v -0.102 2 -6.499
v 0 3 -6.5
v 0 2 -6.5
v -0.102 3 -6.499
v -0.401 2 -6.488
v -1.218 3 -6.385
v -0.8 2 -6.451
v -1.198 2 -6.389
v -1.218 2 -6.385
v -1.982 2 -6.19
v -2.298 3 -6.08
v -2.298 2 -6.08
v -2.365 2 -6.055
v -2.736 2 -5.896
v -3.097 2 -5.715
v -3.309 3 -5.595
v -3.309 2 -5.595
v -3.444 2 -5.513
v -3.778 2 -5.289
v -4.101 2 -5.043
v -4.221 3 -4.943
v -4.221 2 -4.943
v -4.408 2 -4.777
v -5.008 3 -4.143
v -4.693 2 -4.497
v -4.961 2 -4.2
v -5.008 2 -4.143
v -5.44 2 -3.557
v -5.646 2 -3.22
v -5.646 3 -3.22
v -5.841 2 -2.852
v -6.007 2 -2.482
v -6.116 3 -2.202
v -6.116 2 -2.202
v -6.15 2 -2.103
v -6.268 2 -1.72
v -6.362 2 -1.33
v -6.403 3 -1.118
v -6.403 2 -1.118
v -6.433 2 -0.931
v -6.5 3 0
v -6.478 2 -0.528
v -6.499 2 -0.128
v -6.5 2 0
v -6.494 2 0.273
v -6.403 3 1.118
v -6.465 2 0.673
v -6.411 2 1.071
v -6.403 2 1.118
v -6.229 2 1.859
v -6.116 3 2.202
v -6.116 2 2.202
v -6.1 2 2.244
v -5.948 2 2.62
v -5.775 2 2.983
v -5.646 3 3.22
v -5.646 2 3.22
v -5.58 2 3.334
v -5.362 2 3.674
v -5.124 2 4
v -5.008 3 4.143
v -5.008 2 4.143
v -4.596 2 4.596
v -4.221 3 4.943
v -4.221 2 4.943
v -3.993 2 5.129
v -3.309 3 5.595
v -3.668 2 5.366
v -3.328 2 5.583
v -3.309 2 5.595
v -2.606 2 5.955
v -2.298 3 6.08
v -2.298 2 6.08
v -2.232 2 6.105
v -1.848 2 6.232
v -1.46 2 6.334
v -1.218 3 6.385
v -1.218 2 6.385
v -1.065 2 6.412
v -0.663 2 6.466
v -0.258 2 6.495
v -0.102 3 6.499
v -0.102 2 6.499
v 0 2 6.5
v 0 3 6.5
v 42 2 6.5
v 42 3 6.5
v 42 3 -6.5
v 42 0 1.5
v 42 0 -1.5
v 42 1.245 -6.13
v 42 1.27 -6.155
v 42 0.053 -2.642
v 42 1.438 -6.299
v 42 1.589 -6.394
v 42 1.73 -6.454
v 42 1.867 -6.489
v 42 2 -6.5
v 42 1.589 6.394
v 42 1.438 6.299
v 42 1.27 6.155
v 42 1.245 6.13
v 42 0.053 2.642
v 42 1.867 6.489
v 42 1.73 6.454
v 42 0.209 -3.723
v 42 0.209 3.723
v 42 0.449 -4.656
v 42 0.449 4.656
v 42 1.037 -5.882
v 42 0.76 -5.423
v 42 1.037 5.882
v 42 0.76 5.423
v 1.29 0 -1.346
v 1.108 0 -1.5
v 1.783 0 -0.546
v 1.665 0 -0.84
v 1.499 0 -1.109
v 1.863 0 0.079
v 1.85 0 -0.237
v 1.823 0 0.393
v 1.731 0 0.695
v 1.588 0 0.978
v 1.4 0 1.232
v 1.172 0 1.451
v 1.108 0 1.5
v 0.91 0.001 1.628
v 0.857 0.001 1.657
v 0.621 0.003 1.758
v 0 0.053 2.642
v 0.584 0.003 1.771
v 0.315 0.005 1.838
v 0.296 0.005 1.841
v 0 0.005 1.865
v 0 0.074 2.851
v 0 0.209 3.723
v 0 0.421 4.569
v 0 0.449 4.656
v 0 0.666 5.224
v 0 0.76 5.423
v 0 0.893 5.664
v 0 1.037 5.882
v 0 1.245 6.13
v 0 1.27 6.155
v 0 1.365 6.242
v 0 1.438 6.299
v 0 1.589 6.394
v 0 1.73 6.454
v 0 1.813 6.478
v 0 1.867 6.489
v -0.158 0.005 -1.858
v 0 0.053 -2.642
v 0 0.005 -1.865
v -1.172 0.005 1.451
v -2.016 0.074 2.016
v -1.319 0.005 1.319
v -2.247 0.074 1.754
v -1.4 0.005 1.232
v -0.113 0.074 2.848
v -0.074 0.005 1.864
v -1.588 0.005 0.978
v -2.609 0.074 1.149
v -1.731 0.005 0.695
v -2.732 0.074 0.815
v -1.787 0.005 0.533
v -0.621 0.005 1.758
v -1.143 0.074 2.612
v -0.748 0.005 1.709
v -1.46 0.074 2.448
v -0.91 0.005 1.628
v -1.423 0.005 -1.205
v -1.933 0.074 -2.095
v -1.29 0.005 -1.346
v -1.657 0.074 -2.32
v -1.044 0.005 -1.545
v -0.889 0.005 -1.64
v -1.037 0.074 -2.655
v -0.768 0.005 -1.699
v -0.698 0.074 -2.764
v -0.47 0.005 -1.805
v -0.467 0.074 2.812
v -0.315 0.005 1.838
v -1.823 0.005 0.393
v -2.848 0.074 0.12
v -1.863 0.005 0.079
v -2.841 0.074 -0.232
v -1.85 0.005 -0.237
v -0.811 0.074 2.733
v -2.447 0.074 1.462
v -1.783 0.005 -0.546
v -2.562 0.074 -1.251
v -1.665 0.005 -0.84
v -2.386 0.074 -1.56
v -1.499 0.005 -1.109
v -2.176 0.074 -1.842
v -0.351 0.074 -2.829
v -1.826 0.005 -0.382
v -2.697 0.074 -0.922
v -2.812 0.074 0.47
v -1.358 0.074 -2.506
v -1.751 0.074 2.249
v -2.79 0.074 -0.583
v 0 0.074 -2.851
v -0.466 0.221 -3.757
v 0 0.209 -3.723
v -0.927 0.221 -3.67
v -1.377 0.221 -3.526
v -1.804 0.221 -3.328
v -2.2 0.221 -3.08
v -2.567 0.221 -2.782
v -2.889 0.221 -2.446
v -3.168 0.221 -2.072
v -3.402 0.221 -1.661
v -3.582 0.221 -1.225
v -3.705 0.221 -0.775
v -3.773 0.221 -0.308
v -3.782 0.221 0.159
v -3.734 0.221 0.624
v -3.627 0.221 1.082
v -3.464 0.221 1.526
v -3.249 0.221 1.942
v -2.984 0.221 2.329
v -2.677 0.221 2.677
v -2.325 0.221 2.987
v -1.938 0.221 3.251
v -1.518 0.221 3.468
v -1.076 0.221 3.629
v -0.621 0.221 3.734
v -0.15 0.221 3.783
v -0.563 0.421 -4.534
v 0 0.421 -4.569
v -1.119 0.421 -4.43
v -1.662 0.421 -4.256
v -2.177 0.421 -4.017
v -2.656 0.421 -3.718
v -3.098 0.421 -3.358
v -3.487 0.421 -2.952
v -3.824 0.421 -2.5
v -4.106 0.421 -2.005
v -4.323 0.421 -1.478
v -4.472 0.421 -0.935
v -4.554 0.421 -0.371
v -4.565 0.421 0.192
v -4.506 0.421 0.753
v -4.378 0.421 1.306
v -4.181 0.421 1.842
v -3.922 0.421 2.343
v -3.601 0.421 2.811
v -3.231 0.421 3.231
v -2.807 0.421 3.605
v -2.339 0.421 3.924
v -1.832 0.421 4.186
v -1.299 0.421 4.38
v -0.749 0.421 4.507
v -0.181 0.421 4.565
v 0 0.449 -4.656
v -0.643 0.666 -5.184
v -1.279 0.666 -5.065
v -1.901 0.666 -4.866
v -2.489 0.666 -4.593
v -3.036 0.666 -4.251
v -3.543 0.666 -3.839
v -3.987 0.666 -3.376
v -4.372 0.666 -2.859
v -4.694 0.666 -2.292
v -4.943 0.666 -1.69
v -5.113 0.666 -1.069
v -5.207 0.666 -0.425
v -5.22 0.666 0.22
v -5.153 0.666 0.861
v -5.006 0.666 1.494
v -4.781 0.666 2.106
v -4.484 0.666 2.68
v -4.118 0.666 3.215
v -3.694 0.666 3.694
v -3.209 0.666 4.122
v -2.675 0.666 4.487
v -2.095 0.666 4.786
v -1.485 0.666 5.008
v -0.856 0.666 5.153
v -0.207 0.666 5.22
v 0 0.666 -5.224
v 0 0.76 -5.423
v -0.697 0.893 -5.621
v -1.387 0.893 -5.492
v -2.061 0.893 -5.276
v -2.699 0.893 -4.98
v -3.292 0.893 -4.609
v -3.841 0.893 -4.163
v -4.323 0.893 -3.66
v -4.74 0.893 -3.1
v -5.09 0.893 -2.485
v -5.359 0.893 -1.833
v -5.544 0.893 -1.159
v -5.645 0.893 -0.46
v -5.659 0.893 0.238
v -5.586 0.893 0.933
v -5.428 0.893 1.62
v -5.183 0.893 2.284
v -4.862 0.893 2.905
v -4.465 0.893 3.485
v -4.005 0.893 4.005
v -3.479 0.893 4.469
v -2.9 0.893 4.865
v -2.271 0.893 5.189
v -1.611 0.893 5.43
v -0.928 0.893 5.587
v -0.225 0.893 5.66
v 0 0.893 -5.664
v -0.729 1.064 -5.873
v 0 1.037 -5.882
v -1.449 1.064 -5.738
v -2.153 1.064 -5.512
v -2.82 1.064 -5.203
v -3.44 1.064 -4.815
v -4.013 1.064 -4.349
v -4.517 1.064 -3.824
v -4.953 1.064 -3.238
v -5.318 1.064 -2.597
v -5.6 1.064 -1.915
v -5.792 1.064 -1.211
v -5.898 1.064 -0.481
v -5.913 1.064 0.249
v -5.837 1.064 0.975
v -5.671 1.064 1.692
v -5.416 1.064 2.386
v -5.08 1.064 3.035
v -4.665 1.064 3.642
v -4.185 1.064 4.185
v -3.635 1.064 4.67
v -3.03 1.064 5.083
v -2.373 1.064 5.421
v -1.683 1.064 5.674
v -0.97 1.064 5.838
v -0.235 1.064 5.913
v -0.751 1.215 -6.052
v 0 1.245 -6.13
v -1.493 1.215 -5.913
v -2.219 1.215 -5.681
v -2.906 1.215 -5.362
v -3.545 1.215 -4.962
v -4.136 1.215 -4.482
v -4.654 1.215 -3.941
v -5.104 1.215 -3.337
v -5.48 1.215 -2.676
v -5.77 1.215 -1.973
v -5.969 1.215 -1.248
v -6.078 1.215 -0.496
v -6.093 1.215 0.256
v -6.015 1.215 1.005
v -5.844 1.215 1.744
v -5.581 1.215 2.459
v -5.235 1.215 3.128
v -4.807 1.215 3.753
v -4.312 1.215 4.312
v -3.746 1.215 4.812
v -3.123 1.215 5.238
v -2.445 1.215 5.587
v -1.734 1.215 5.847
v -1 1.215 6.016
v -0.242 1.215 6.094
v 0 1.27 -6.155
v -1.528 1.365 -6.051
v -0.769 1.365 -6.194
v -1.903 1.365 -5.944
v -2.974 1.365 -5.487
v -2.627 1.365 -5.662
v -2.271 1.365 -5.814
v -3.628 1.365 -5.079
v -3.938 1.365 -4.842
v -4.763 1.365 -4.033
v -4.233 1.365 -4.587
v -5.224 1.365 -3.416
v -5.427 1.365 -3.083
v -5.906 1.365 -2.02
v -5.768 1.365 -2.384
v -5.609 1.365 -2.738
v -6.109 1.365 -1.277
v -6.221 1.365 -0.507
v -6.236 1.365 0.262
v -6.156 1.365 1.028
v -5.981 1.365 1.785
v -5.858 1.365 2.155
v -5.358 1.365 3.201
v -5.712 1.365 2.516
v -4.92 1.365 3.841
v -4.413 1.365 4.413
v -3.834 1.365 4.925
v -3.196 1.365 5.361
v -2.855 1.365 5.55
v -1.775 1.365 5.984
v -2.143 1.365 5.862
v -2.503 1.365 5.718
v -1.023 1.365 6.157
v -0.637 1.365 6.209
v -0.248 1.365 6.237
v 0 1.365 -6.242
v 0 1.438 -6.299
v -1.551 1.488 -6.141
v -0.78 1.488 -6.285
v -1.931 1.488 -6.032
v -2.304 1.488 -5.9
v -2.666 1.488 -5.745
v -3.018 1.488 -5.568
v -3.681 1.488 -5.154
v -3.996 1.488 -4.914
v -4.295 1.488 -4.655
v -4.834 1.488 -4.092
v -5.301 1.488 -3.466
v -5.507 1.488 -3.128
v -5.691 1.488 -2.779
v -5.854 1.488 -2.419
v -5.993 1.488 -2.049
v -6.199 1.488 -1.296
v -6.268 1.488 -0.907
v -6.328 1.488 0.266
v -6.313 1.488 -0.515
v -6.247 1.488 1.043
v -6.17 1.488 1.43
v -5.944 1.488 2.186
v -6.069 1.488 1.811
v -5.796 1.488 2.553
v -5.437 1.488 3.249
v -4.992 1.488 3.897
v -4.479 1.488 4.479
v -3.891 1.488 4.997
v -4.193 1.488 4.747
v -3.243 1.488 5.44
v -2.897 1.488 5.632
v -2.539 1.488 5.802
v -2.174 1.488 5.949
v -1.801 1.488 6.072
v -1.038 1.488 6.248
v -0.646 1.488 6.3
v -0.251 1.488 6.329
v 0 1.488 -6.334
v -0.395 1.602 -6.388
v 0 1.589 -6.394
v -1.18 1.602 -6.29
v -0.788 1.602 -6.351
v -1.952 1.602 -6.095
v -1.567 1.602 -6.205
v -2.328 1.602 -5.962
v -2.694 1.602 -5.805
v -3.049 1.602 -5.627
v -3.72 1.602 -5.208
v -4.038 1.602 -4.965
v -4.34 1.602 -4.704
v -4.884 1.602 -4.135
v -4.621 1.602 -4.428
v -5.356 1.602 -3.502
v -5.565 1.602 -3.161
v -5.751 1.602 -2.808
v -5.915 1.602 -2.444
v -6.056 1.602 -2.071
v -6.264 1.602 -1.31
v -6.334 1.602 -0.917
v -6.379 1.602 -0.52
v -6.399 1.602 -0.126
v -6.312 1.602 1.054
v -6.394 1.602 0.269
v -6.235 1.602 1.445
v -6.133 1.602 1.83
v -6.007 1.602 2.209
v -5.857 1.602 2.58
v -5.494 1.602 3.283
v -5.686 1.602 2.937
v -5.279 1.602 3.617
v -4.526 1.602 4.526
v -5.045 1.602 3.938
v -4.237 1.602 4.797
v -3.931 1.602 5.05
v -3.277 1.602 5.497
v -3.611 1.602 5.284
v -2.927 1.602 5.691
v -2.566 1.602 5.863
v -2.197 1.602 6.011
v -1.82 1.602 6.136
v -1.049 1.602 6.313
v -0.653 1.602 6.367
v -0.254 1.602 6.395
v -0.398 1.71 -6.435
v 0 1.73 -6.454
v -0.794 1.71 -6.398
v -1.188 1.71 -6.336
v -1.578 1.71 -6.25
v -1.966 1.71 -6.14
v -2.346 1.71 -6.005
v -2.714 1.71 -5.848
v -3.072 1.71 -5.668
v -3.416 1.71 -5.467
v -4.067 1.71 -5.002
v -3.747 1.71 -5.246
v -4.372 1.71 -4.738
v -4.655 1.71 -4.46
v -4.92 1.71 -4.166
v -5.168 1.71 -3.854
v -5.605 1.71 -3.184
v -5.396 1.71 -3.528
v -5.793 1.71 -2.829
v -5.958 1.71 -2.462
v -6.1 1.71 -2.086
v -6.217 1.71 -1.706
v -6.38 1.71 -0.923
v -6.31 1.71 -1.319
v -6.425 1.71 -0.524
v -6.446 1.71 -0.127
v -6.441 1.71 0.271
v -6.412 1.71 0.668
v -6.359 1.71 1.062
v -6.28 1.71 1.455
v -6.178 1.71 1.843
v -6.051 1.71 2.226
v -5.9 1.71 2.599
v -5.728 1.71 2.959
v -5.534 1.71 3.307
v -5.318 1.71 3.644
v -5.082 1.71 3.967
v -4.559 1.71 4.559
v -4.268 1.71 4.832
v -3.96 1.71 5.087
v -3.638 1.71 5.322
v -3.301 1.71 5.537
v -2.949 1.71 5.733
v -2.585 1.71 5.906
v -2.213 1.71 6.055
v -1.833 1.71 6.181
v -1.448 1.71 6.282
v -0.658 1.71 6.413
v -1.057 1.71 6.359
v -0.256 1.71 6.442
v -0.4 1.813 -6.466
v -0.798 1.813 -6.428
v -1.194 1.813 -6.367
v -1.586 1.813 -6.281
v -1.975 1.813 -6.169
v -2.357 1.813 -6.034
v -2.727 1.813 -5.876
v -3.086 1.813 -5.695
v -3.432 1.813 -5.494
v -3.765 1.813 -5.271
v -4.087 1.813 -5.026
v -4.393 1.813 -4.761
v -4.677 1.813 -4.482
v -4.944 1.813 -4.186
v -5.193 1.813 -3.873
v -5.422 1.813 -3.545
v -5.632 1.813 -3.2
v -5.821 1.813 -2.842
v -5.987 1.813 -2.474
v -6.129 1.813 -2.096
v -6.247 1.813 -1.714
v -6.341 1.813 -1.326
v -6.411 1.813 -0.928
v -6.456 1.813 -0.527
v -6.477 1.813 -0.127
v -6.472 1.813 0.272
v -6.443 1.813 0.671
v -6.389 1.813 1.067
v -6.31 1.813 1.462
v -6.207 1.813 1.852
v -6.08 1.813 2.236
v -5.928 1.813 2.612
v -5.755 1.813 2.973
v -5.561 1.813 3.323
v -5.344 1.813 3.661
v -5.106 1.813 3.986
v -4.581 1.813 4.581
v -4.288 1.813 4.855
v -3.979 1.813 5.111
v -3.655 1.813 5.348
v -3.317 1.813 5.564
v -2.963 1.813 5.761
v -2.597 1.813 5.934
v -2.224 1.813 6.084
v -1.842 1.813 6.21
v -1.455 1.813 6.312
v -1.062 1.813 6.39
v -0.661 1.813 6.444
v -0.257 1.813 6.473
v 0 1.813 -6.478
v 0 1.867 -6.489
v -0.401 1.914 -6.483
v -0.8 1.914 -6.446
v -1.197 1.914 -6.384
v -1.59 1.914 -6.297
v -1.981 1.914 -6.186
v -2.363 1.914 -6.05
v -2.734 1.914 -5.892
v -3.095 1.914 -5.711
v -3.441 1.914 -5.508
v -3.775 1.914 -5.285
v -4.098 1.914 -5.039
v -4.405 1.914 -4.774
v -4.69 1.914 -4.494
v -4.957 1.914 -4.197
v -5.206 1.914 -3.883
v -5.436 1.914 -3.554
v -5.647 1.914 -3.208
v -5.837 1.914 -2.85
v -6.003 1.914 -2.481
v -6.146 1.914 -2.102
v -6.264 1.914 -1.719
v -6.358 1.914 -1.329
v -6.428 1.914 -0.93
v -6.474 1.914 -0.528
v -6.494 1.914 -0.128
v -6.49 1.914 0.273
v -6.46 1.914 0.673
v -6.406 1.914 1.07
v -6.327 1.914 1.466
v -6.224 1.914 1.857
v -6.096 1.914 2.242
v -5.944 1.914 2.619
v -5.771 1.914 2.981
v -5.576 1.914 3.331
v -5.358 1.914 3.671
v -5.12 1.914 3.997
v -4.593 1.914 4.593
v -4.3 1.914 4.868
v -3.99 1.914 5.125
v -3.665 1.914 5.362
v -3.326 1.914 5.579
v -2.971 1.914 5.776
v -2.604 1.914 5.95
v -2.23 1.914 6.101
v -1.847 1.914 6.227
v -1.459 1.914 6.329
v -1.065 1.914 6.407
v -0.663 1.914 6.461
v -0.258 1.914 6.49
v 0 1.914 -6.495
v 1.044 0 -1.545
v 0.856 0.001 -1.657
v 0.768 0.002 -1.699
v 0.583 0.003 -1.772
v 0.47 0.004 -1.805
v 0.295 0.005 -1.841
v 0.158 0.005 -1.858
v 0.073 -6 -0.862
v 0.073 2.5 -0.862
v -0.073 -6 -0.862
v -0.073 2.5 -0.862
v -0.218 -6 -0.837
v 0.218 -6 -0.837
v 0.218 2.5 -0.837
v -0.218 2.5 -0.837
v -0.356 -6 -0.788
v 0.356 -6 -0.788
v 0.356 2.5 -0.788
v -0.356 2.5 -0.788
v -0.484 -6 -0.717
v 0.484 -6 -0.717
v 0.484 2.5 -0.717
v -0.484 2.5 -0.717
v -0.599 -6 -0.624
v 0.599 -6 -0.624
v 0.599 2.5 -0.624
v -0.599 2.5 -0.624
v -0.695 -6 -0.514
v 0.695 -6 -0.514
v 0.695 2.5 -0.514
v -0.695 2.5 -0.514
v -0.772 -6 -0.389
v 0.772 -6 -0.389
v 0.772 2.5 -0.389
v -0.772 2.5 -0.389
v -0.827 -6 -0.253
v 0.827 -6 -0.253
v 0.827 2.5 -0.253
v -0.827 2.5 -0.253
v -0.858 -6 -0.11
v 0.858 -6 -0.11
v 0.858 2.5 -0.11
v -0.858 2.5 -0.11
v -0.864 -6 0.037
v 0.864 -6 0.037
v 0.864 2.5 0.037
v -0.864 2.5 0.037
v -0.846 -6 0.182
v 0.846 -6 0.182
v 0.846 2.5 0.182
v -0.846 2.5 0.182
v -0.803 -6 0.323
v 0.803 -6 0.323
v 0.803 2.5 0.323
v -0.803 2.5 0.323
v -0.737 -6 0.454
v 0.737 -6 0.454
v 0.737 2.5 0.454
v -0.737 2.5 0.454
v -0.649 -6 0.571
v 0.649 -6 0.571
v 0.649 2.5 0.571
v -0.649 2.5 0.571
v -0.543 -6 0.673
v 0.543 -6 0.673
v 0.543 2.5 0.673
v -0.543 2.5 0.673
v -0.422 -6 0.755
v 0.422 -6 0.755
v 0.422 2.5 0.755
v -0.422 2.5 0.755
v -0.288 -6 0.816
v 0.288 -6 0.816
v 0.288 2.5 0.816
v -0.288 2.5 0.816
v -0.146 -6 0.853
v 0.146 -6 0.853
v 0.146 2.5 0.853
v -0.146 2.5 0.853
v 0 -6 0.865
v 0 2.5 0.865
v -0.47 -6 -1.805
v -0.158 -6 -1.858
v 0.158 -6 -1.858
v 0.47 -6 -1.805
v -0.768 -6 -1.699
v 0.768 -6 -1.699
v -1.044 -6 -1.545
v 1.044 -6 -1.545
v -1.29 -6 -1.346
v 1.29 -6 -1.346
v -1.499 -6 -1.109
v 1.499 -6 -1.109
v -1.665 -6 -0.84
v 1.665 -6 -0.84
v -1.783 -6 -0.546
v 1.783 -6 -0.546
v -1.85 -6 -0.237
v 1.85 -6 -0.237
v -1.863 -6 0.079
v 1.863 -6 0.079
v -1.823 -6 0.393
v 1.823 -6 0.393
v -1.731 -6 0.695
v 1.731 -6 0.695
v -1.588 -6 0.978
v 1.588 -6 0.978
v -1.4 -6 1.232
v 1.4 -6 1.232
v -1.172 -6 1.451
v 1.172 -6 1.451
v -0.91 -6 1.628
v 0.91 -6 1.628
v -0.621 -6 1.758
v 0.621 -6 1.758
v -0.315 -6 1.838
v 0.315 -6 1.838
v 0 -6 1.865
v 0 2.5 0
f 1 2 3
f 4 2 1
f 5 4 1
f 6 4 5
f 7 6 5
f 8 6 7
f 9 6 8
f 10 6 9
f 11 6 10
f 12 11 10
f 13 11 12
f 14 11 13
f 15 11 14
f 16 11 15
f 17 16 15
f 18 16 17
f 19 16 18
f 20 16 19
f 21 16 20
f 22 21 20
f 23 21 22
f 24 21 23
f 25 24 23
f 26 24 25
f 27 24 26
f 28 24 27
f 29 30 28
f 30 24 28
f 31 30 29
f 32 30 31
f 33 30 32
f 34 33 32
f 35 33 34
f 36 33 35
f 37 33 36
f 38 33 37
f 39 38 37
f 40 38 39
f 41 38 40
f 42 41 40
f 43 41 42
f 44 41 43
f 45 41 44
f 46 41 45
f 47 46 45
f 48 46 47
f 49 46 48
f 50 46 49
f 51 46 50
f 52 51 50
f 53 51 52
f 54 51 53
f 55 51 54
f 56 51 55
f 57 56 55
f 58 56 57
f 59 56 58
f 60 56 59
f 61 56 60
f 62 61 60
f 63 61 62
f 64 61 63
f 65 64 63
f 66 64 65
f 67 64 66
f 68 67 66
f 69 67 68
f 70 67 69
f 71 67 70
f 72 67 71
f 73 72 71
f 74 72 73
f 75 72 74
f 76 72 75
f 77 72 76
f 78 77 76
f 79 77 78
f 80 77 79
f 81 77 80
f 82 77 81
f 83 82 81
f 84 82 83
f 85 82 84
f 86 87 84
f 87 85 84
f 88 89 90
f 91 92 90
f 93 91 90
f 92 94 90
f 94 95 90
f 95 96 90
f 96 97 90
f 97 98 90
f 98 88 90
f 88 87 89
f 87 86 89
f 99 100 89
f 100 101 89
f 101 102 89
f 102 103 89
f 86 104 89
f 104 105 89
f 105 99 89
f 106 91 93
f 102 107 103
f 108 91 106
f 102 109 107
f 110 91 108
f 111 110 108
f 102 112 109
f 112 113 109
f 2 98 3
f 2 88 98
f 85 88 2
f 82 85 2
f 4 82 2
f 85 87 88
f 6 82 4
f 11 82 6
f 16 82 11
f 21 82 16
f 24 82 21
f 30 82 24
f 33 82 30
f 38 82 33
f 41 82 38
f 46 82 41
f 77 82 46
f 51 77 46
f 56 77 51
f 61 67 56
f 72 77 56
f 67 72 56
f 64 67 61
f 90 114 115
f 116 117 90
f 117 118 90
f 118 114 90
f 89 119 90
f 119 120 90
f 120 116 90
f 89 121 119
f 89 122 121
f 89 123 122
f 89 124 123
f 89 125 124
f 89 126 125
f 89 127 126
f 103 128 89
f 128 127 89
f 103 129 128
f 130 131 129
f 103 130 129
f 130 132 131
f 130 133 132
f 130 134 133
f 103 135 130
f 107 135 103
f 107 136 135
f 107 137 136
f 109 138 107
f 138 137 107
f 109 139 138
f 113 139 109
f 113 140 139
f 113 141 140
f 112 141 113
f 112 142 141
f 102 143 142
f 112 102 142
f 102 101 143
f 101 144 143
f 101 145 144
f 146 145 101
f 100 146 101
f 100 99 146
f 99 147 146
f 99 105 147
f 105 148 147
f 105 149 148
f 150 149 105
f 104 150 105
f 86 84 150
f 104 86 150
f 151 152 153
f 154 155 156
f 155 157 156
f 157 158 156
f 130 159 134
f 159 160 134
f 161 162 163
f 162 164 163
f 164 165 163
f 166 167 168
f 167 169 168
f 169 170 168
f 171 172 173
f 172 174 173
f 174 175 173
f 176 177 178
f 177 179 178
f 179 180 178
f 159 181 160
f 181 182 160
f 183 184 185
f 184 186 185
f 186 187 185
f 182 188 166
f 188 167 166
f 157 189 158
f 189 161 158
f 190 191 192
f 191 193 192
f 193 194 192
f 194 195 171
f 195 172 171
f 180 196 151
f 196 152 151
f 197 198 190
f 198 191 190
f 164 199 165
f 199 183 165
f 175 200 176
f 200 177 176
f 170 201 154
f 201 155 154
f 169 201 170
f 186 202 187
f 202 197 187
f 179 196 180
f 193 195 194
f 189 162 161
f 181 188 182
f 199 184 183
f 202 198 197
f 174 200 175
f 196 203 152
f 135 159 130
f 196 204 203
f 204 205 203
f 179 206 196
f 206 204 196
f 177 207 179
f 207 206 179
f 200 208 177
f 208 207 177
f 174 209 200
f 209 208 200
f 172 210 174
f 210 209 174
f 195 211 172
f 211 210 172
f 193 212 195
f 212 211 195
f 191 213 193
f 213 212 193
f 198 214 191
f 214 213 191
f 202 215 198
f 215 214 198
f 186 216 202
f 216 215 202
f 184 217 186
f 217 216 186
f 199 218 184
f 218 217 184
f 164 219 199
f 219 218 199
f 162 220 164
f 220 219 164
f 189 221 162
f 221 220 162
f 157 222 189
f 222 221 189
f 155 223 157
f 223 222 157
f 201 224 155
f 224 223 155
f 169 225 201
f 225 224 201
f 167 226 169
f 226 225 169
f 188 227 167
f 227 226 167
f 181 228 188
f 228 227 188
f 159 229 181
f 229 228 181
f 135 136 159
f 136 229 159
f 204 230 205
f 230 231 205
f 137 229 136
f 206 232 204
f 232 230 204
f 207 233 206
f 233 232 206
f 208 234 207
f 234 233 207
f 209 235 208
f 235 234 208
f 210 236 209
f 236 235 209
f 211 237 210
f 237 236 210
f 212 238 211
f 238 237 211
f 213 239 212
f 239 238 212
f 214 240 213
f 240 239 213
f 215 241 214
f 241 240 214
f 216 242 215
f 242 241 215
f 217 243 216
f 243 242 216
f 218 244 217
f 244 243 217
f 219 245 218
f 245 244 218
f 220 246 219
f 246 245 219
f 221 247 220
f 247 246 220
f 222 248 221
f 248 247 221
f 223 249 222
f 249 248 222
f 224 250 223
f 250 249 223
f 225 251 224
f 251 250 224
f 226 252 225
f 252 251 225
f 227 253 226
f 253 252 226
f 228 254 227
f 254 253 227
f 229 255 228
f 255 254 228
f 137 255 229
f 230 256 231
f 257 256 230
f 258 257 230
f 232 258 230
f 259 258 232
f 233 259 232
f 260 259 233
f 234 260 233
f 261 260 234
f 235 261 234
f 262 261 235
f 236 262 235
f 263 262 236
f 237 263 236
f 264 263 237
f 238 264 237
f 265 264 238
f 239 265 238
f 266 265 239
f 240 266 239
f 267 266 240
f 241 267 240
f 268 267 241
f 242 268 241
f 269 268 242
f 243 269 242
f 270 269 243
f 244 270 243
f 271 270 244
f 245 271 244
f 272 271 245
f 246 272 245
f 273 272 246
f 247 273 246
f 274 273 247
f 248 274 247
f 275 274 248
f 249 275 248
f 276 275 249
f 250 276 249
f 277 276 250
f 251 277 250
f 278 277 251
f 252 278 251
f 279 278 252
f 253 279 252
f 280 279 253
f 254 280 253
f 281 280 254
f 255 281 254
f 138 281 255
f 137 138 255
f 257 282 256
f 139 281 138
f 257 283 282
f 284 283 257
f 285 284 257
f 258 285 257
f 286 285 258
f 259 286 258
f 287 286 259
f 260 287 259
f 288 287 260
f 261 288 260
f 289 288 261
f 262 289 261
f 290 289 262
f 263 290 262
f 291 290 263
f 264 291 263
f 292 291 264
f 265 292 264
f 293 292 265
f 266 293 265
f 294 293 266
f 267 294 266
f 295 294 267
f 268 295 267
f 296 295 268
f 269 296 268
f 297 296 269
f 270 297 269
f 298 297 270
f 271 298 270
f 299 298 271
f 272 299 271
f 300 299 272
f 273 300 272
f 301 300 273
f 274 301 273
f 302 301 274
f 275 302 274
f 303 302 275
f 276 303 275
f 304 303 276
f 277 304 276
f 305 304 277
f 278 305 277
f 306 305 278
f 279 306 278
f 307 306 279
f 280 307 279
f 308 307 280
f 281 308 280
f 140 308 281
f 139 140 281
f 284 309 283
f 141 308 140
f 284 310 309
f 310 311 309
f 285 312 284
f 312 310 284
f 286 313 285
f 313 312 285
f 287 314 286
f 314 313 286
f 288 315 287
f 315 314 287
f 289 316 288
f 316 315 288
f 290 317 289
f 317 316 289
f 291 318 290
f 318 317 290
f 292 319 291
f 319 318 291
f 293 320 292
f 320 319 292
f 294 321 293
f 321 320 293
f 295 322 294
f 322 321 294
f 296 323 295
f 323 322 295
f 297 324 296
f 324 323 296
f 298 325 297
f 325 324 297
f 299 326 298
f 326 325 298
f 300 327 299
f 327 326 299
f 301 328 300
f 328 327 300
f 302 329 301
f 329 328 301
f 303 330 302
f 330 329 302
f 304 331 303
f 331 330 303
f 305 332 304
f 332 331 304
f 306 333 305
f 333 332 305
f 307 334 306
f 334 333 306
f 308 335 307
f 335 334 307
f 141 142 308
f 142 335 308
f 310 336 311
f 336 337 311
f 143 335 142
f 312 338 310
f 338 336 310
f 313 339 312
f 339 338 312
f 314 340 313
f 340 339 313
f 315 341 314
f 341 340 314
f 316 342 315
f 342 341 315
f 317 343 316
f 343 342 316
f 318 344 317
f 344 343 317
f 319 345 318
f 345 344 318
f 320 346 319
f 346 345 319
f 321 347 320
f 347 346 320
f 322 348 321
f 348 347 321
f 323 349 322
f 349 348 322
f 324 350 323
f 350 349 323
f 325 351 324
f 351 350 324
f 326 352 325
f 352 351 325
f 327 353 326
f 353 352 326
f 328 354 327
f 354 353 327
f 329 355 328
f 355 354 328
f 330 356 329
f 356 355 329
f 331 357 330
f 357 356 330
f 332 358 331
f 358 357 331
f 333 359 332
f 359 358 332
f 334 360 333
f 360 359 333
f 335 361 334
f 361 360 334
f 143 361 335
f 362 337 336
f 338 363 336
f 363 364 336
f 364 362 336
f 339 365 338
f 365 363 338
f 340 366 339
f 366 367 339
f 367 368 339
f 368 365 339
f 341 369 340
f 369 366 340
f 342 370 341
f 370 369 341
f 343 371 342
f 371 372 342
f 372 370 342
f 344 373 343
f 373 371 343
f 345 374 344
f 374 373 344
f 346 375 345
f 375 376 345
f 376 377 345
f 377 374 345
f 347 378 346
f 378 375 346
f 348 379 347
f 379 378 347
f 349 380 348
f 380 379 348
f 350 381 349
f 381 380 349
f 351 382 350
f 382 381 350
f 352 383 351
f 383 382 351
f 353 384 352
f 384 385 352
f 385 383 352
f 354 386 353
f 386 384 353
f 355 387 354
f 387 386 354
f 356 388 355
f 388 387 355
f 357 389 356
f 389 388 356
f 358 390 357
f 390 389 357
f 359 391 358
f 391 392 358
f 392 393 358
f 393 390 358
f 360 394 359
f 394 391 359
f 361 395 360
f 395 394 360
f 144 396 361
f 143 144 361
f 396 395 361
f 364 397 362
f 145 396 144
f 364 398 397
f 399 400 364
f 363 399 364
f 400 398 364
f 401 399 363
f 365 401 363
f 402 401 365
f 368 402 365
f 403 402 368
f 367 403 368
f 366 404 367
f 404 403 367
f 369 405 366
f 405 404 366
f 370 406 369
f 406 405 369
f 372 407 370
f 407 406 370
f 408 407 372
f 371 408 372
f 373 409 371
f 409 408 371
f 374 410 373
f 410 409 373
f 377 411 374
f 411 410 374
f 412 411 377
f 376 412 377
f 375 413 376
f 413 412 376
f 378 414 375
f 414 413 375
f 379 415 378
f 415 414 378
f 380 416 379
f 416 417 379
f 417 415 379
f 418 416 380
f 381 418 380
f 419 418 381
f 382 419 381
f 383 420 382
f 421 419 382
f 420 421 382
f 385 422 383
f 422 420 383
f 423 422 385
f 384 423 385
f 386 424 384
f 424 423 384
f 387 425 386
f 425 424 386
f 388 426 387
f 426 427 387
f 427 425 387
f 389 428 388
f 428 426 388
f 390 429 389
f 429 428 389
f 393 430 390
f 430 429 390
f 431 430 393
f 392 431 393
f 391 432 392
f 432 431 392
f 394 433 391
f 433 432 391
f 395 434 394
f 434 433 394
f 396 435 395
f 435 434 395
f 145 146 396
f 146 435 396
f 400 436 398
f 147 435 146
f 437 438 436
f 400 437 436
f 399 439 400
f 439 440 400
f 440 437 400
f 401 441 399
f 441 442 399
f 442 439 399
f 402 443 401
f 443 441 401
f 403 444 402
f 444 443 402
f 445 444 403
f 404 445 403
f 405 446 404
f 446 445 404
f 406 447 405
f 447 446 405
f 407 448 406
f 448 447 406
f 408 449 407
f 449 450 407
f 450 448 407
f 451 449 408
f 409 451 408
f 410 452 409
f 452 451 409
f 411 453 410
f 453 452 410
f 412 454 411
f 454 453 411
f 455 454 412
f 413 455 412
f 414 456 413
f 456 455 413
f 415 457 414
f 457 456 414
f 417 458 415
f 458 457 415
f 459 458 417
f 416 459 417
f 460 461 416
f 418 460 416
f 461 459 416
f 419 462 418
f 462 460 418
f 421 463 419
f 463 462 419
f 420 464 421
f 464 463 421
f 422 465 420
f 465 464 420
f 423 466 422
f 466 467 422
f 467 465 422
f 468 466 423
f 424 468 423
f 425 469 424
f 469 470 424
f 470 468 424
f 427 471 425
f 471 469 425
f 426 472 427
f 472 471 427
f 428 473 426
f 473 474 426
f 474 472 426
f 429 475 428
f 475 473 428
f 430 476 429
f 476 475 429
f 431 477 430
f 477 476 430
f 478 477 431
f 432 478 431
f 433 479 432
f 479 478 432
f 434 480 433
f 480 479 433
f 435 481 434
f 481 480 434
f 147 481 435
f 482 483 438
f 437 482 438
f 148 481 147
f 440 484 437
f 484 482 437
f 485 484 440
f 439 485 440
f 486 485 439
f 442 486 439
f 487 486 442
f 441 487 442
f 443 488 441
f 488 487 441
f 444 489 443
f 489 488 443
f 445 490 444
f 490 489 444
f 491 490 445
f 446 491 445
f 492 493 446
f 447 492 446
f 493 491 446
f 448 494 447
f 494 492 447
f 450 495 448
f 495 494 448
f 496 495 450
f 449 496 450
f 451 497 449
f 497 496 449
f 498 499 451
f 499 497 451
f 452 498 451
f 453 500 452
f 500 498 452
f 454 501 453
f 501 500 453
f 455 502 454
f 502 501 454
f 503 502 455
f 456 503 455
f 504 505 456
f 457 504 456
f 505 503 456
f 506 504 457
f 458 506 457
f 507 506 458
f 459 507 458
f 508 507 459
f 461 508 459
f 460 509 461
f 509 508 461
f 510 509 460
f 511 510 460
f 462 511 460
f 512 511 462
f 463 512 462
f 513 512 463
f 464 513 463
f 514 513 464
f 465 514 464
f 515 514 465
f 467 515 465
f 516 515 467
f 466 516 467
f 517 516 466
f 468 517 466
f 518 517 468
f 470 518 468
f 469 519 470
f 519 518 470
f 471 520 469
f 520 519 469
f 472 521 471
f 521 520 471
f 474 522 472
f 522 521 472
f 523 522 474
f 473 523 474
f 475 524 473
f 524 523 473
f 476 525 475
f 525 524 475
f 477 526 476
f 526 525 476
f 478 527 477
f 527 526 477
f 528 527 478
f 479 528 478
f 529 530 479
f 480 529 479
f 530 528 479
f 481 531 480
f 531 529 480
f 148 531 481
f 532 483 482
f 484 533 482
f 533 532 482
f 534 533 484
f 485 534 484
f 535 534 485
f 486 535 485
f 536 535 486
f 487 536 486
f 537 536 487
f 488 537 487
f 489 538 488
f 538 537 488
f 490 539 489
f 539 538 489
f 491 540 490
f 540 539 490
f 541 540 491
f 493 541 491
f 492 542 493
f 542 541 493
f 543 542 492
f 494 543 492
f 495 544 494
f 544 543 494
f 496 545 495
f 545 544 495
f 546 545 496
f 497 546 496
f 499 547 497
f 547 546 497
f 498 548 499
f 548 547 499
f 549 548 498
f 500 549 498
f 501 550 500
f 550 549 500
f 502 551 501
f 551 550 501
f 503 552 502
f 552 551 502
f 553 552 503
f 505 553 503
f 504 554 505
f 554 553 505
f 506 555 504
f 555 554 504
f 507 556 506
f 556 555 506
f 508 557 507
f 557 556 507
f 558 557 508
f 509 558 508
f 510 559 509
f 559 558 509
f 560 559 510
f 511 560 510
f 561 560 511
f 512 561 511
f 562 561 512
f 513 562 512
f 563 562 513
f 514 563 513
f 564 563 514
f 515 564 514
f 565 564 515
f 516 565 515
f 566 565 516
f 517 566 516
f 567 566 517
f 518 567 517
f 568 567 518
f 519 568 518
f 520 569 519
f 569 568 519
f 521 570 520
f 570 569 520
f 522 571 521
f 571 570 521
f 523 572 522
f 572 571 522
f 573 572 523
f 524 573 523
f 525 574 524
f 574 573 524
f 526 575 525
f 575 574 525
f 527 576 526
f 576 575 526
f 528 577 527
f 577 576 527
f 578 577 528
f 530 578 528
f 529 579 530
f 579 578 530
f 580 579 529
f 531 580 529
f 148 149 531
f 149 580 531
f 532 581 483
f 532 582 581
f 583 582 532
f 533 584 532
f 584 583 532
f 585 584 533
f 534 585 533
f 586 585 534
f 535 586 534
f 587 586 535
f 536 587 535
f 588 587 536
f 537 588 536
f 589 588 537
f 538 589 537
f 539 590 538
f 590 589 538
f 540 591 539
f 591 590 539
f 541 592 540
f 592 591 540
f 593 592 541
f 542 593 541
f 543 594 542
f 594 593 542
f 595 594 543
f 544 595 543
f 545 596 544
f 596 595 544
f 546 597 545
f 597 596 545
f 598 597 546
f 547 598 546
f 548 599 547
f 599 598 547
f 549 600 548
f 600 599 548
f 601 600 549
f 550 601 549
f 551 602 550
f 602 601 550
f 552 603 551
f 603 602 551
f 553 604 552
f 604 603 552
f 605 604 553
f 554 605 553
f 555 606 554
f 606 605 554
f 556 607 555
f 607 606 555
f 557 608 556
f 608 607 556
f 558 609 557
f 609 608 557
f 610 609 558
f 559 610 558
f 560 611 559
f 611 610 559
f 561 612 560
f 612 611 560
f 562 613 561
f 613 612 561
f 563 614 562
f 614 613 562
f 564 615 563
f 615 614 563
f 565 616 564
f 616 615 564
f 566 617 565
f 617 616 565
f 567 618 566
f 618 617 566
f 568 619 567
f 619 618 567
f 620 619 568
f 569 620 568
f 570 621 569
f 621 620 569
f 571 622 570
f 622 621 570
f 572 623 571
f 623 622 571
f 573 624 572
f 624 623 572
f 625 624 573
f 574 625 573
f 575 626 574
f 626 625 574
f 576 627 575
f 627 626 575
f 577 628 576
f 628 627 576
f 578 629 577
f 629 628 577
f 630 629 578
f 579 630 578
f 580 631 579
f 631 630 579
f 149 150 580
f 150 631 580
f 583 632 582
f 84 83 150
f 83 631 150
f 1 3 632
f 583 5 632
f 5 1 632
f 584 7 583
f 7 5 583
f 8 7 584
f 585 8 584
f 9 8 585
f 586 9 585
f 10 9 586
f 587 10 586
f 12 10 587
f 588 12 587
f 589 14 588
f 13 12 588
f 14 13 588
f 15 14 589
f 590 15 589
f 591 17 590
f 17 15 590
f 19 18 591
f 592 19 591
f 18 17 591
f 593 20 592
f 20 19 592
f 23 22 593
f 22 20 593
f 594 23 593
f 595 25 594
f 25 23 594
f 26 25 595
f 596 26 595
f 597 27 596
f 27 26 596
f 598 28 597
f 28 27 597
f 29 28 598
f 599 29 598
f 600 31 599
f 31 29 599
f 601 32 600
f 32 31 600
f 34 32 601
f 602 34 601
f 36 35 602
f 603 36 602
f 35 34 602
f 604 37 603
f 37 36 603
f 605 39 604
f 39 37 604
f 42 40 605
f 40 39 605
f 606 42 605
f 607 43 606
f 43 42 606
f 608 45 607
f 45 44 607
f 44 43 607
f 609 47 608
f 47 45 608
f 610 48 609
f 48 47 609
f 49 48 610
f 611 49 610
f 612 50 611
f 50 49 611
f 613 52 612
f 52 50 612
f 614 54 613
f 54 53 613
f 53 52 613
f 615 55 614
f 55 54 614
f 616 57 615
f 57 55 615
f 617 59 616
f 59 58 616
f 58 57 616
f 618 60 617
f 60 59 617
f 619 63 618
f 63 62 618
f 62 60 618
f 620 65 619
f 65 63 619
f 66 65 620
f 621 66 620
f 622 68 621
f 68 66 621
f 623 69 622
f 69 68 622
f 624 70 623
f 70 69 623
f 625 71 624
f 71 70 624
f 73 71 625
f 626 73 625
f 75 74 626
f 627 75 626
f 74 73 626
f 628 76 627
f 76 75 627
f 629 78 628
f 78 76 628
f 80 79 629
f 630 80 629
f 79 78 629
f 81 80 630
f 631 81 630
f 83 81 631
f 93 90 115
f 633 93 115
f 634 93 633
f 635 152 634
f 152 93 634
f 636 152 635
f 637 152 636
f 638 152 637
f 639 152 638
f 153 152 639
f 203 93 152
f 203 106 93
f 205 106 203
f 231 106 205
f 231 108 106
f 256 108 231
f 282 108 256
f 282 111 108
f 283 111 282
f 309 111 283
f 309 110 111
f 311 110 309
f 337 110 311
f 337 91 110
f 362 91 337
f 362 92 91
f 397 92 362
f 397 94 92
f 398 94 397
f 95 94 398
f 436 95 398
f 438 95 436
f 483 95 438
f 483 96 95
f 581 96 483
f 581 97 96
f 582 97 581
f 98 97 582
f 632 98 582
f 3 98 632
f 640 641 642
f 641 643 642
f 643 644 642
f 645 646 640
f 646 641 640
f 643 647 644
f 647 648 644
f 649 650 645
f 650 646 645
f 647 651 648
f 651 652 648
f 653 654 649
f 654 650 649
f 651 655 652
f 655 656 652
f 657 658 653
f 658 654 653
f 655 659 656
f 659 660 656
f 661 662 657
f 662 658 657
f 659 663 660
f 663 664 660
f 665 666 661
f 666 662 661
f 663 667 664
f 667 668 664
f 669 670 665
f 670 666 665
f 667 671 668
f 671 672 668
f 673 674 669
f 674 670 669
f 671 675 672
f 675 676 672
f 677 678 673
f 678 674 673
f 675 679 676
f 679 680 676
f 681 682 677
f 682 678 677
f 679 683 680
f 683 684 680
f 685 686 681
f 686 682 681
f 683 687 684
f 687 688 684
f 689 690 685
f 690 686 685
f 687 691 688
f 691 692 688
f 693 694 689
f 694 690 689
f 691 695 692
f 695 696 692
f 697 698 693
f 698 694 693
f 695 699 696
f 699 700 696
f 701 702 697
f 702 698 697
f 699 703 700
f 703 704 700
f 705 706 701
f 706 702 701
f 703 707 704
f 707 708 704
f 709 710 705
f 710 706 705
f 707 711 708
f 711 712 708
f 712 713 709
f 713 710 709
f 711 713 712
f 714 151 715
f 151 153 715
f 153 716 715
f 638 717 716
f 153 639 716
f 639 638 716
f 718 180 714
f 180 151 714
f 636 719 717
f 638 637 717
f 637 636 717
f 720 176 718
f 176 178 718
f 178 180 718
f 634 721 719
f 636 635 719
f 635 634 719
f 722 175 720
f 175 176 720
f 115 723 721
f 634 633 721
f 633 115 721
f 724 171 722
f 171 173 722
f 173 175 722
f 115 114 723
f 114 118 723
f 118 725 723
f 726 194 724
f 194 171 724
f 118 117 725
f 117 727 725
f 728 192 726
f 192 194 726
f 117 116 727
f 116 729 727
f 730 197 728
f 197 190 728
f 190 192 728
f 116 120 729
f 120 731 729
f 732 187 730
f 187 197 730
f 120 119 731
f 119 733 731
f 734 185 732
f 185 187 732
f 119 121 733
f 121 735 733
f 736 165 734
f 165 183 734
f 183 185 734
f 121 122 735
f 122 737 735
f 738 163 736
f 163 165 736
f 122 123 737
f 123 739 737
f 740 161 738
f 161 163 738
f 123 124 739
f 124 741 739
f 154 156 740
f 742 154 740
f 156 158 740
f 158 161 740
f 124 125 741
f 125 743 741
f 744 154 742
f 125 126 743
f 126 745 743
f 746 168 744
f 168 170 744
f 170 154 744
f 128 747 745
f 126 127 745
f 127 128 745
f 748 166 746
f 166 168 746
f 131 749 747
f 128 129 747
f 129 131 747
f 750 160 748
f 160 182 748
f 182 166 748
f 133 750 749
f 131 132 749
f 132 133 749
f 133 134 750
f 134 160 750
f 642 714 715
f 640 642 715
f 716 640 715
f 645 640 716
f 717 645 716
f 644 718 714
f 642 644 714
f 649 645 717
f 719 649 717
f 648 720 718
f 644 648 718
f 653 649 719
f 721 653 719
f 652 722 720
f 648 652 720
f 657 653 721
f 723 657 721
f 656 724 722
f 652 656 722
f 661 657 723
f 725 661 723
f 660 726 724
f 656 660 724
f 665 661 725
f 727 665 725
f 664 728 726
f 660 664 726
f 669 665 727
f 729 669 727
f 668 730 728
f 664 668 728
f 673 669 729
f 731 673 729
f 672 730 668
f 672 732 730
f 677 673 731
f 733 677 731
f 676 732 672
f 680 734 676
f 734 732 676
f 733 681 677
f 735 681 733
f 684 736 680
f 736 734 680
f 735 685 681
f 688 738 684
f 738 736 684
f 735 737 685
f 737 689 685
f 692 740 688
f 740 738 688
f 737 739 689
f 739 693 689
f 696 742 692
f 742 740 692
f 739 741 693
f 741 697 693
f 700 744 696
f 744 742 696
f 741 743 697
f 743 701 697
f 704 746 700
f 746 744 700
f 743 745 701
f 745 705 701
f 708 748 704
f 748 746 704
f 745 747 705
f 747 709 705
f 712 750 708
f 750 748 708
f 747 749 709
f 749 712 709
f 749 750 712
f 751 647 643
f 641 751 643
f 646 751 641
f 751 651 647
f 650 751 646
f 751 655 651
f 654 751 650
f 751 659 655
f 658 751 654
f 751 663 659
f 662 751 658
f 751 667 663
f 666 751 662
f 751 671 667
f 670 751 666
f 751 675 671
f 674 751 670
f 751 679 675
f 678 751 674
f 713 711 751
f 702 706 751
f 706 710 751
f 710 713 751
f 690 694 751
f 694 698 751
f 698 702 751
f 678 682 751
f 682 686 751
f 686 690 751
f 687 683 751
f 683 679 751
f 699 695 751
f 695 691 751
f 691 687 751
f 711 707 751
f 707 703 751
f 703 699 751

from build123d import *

# Parameters (mm, degrees)
BOSS_EXTRUDE1_DEPTH = 3
FILLET1_SIZE        = 2
FILLET1_SIZE_2      = 5
SKETCH2_R           = 1.875
SKETCH2_R_2         = 0.875
BOSS_EXTRUDE3_DEPTH = 9
CUT_EXTRUDE2_START  = -0.5
SKETCH4_R           = 0.875
CUT_EXTRUDE2_DEPTH  = 43.942490853


with BuildPart() as part:
    # Sketch1 → Boss-Extrude1 (new body)
    with BuildSketch(Plane(origin=(0, 0, 0), x_dir=(1, 0, 0), z_dir=(0, 1, 0))):
        with BuildLine():
            Line((0, 6.5), (42, 6.5))
            Line((42, 6.5), (42, -6.5))
            Line((42, -6.5), (0, -6.5))
            ThreePointArc((0, -6.5), (-6.5, 0), (0, 6.5))
        make_face()
    extrude(amount=BOSS_EXTRUDE1_DEPTH)

    # Fillet1
    # an asymmetric fillet: 5, 2 mm, written as the material it takes off along each edge
    with BuildSketch(Plane(origin=(0, 0, -6.5), x_dir=(0, 1, 0), z_dir=(1, 0, 0)), Plane(origin=(54.5, 0, 6.5), x_dir=(0, 1, 0), z_dir=(-1, 0, 0))) as fillet1_piece_1:
        with BuildLine():
            Bezier((FILLET1_SIZE, 0), (0, 0), (0, FILLET1_SIZE_2), weights=[1, 0.707106781, 1])
            Line((0, FILLET1_SIZE_2), (0, 0))
            Line((0, 0), (FILLET1_SIZE, 0))
        make_face()
    extrude(amount=54.5, mode=Mode.SUBTRACT)
    with BuildSketch(Plane(origin=(0, 0, 0), x_dir=(0, 0, 1), z_dir=(1, 0, 0))) as fillet1_piece_2:
        with BuildLine():
            Bezier((6.5, -FILLET1_SIZE), (6.5, 0), (6.5 - FILLET1_SIZE_2, 0), weights=[1, 0.707106781, 1])
            Line((6.5 - FILLET1_SIZE_2, 0), (6.5, 0))
            Line((6.5, 0), (6.5, -FILLET1_SIZE))
        make_face()
    revolve(axis=Axis((0, 0, 0), (0, -1, 0)), revolution_arc=180, mode=Mode.SUBTRACT)

    # Sketch2 → Boss-Extrude3 (add)
    with BuildSketch(Plane(origin=(0, 3, 0), x_dir=(1, 0, 0), z_dir=(0, 1, 0))):
        with Locations(Location((0, 0, 0), (0, 0, 270))):
            Circle(SKETCH2_R)
        with Locations(Location((0, 0, 0), (0, 0, 270))):
            Circle(SKETCH2_R_2, mode=Mode.SUBTRACT)
    extrude(amount=-BOSS_EXTRUDE3_DEPTH)

    # Sketch4 → Cut-Extrude2 (cut, through all)
    with BuildSketch(Plane(origin=(0, 3, 0), x_dir=(1, 0, 0), z_dir=(0, 1, 0)).offset(CUT_EXTRUDE2_START)):
        with Locations(Location((0, 0, 0), (0, 0, 270))):
            Circle(SKETCH4_R)
    extrude(amount=-CUT_EXTRUDE2_DEPTH, mode=Mode.SUBTRACT)


solid = part.part
